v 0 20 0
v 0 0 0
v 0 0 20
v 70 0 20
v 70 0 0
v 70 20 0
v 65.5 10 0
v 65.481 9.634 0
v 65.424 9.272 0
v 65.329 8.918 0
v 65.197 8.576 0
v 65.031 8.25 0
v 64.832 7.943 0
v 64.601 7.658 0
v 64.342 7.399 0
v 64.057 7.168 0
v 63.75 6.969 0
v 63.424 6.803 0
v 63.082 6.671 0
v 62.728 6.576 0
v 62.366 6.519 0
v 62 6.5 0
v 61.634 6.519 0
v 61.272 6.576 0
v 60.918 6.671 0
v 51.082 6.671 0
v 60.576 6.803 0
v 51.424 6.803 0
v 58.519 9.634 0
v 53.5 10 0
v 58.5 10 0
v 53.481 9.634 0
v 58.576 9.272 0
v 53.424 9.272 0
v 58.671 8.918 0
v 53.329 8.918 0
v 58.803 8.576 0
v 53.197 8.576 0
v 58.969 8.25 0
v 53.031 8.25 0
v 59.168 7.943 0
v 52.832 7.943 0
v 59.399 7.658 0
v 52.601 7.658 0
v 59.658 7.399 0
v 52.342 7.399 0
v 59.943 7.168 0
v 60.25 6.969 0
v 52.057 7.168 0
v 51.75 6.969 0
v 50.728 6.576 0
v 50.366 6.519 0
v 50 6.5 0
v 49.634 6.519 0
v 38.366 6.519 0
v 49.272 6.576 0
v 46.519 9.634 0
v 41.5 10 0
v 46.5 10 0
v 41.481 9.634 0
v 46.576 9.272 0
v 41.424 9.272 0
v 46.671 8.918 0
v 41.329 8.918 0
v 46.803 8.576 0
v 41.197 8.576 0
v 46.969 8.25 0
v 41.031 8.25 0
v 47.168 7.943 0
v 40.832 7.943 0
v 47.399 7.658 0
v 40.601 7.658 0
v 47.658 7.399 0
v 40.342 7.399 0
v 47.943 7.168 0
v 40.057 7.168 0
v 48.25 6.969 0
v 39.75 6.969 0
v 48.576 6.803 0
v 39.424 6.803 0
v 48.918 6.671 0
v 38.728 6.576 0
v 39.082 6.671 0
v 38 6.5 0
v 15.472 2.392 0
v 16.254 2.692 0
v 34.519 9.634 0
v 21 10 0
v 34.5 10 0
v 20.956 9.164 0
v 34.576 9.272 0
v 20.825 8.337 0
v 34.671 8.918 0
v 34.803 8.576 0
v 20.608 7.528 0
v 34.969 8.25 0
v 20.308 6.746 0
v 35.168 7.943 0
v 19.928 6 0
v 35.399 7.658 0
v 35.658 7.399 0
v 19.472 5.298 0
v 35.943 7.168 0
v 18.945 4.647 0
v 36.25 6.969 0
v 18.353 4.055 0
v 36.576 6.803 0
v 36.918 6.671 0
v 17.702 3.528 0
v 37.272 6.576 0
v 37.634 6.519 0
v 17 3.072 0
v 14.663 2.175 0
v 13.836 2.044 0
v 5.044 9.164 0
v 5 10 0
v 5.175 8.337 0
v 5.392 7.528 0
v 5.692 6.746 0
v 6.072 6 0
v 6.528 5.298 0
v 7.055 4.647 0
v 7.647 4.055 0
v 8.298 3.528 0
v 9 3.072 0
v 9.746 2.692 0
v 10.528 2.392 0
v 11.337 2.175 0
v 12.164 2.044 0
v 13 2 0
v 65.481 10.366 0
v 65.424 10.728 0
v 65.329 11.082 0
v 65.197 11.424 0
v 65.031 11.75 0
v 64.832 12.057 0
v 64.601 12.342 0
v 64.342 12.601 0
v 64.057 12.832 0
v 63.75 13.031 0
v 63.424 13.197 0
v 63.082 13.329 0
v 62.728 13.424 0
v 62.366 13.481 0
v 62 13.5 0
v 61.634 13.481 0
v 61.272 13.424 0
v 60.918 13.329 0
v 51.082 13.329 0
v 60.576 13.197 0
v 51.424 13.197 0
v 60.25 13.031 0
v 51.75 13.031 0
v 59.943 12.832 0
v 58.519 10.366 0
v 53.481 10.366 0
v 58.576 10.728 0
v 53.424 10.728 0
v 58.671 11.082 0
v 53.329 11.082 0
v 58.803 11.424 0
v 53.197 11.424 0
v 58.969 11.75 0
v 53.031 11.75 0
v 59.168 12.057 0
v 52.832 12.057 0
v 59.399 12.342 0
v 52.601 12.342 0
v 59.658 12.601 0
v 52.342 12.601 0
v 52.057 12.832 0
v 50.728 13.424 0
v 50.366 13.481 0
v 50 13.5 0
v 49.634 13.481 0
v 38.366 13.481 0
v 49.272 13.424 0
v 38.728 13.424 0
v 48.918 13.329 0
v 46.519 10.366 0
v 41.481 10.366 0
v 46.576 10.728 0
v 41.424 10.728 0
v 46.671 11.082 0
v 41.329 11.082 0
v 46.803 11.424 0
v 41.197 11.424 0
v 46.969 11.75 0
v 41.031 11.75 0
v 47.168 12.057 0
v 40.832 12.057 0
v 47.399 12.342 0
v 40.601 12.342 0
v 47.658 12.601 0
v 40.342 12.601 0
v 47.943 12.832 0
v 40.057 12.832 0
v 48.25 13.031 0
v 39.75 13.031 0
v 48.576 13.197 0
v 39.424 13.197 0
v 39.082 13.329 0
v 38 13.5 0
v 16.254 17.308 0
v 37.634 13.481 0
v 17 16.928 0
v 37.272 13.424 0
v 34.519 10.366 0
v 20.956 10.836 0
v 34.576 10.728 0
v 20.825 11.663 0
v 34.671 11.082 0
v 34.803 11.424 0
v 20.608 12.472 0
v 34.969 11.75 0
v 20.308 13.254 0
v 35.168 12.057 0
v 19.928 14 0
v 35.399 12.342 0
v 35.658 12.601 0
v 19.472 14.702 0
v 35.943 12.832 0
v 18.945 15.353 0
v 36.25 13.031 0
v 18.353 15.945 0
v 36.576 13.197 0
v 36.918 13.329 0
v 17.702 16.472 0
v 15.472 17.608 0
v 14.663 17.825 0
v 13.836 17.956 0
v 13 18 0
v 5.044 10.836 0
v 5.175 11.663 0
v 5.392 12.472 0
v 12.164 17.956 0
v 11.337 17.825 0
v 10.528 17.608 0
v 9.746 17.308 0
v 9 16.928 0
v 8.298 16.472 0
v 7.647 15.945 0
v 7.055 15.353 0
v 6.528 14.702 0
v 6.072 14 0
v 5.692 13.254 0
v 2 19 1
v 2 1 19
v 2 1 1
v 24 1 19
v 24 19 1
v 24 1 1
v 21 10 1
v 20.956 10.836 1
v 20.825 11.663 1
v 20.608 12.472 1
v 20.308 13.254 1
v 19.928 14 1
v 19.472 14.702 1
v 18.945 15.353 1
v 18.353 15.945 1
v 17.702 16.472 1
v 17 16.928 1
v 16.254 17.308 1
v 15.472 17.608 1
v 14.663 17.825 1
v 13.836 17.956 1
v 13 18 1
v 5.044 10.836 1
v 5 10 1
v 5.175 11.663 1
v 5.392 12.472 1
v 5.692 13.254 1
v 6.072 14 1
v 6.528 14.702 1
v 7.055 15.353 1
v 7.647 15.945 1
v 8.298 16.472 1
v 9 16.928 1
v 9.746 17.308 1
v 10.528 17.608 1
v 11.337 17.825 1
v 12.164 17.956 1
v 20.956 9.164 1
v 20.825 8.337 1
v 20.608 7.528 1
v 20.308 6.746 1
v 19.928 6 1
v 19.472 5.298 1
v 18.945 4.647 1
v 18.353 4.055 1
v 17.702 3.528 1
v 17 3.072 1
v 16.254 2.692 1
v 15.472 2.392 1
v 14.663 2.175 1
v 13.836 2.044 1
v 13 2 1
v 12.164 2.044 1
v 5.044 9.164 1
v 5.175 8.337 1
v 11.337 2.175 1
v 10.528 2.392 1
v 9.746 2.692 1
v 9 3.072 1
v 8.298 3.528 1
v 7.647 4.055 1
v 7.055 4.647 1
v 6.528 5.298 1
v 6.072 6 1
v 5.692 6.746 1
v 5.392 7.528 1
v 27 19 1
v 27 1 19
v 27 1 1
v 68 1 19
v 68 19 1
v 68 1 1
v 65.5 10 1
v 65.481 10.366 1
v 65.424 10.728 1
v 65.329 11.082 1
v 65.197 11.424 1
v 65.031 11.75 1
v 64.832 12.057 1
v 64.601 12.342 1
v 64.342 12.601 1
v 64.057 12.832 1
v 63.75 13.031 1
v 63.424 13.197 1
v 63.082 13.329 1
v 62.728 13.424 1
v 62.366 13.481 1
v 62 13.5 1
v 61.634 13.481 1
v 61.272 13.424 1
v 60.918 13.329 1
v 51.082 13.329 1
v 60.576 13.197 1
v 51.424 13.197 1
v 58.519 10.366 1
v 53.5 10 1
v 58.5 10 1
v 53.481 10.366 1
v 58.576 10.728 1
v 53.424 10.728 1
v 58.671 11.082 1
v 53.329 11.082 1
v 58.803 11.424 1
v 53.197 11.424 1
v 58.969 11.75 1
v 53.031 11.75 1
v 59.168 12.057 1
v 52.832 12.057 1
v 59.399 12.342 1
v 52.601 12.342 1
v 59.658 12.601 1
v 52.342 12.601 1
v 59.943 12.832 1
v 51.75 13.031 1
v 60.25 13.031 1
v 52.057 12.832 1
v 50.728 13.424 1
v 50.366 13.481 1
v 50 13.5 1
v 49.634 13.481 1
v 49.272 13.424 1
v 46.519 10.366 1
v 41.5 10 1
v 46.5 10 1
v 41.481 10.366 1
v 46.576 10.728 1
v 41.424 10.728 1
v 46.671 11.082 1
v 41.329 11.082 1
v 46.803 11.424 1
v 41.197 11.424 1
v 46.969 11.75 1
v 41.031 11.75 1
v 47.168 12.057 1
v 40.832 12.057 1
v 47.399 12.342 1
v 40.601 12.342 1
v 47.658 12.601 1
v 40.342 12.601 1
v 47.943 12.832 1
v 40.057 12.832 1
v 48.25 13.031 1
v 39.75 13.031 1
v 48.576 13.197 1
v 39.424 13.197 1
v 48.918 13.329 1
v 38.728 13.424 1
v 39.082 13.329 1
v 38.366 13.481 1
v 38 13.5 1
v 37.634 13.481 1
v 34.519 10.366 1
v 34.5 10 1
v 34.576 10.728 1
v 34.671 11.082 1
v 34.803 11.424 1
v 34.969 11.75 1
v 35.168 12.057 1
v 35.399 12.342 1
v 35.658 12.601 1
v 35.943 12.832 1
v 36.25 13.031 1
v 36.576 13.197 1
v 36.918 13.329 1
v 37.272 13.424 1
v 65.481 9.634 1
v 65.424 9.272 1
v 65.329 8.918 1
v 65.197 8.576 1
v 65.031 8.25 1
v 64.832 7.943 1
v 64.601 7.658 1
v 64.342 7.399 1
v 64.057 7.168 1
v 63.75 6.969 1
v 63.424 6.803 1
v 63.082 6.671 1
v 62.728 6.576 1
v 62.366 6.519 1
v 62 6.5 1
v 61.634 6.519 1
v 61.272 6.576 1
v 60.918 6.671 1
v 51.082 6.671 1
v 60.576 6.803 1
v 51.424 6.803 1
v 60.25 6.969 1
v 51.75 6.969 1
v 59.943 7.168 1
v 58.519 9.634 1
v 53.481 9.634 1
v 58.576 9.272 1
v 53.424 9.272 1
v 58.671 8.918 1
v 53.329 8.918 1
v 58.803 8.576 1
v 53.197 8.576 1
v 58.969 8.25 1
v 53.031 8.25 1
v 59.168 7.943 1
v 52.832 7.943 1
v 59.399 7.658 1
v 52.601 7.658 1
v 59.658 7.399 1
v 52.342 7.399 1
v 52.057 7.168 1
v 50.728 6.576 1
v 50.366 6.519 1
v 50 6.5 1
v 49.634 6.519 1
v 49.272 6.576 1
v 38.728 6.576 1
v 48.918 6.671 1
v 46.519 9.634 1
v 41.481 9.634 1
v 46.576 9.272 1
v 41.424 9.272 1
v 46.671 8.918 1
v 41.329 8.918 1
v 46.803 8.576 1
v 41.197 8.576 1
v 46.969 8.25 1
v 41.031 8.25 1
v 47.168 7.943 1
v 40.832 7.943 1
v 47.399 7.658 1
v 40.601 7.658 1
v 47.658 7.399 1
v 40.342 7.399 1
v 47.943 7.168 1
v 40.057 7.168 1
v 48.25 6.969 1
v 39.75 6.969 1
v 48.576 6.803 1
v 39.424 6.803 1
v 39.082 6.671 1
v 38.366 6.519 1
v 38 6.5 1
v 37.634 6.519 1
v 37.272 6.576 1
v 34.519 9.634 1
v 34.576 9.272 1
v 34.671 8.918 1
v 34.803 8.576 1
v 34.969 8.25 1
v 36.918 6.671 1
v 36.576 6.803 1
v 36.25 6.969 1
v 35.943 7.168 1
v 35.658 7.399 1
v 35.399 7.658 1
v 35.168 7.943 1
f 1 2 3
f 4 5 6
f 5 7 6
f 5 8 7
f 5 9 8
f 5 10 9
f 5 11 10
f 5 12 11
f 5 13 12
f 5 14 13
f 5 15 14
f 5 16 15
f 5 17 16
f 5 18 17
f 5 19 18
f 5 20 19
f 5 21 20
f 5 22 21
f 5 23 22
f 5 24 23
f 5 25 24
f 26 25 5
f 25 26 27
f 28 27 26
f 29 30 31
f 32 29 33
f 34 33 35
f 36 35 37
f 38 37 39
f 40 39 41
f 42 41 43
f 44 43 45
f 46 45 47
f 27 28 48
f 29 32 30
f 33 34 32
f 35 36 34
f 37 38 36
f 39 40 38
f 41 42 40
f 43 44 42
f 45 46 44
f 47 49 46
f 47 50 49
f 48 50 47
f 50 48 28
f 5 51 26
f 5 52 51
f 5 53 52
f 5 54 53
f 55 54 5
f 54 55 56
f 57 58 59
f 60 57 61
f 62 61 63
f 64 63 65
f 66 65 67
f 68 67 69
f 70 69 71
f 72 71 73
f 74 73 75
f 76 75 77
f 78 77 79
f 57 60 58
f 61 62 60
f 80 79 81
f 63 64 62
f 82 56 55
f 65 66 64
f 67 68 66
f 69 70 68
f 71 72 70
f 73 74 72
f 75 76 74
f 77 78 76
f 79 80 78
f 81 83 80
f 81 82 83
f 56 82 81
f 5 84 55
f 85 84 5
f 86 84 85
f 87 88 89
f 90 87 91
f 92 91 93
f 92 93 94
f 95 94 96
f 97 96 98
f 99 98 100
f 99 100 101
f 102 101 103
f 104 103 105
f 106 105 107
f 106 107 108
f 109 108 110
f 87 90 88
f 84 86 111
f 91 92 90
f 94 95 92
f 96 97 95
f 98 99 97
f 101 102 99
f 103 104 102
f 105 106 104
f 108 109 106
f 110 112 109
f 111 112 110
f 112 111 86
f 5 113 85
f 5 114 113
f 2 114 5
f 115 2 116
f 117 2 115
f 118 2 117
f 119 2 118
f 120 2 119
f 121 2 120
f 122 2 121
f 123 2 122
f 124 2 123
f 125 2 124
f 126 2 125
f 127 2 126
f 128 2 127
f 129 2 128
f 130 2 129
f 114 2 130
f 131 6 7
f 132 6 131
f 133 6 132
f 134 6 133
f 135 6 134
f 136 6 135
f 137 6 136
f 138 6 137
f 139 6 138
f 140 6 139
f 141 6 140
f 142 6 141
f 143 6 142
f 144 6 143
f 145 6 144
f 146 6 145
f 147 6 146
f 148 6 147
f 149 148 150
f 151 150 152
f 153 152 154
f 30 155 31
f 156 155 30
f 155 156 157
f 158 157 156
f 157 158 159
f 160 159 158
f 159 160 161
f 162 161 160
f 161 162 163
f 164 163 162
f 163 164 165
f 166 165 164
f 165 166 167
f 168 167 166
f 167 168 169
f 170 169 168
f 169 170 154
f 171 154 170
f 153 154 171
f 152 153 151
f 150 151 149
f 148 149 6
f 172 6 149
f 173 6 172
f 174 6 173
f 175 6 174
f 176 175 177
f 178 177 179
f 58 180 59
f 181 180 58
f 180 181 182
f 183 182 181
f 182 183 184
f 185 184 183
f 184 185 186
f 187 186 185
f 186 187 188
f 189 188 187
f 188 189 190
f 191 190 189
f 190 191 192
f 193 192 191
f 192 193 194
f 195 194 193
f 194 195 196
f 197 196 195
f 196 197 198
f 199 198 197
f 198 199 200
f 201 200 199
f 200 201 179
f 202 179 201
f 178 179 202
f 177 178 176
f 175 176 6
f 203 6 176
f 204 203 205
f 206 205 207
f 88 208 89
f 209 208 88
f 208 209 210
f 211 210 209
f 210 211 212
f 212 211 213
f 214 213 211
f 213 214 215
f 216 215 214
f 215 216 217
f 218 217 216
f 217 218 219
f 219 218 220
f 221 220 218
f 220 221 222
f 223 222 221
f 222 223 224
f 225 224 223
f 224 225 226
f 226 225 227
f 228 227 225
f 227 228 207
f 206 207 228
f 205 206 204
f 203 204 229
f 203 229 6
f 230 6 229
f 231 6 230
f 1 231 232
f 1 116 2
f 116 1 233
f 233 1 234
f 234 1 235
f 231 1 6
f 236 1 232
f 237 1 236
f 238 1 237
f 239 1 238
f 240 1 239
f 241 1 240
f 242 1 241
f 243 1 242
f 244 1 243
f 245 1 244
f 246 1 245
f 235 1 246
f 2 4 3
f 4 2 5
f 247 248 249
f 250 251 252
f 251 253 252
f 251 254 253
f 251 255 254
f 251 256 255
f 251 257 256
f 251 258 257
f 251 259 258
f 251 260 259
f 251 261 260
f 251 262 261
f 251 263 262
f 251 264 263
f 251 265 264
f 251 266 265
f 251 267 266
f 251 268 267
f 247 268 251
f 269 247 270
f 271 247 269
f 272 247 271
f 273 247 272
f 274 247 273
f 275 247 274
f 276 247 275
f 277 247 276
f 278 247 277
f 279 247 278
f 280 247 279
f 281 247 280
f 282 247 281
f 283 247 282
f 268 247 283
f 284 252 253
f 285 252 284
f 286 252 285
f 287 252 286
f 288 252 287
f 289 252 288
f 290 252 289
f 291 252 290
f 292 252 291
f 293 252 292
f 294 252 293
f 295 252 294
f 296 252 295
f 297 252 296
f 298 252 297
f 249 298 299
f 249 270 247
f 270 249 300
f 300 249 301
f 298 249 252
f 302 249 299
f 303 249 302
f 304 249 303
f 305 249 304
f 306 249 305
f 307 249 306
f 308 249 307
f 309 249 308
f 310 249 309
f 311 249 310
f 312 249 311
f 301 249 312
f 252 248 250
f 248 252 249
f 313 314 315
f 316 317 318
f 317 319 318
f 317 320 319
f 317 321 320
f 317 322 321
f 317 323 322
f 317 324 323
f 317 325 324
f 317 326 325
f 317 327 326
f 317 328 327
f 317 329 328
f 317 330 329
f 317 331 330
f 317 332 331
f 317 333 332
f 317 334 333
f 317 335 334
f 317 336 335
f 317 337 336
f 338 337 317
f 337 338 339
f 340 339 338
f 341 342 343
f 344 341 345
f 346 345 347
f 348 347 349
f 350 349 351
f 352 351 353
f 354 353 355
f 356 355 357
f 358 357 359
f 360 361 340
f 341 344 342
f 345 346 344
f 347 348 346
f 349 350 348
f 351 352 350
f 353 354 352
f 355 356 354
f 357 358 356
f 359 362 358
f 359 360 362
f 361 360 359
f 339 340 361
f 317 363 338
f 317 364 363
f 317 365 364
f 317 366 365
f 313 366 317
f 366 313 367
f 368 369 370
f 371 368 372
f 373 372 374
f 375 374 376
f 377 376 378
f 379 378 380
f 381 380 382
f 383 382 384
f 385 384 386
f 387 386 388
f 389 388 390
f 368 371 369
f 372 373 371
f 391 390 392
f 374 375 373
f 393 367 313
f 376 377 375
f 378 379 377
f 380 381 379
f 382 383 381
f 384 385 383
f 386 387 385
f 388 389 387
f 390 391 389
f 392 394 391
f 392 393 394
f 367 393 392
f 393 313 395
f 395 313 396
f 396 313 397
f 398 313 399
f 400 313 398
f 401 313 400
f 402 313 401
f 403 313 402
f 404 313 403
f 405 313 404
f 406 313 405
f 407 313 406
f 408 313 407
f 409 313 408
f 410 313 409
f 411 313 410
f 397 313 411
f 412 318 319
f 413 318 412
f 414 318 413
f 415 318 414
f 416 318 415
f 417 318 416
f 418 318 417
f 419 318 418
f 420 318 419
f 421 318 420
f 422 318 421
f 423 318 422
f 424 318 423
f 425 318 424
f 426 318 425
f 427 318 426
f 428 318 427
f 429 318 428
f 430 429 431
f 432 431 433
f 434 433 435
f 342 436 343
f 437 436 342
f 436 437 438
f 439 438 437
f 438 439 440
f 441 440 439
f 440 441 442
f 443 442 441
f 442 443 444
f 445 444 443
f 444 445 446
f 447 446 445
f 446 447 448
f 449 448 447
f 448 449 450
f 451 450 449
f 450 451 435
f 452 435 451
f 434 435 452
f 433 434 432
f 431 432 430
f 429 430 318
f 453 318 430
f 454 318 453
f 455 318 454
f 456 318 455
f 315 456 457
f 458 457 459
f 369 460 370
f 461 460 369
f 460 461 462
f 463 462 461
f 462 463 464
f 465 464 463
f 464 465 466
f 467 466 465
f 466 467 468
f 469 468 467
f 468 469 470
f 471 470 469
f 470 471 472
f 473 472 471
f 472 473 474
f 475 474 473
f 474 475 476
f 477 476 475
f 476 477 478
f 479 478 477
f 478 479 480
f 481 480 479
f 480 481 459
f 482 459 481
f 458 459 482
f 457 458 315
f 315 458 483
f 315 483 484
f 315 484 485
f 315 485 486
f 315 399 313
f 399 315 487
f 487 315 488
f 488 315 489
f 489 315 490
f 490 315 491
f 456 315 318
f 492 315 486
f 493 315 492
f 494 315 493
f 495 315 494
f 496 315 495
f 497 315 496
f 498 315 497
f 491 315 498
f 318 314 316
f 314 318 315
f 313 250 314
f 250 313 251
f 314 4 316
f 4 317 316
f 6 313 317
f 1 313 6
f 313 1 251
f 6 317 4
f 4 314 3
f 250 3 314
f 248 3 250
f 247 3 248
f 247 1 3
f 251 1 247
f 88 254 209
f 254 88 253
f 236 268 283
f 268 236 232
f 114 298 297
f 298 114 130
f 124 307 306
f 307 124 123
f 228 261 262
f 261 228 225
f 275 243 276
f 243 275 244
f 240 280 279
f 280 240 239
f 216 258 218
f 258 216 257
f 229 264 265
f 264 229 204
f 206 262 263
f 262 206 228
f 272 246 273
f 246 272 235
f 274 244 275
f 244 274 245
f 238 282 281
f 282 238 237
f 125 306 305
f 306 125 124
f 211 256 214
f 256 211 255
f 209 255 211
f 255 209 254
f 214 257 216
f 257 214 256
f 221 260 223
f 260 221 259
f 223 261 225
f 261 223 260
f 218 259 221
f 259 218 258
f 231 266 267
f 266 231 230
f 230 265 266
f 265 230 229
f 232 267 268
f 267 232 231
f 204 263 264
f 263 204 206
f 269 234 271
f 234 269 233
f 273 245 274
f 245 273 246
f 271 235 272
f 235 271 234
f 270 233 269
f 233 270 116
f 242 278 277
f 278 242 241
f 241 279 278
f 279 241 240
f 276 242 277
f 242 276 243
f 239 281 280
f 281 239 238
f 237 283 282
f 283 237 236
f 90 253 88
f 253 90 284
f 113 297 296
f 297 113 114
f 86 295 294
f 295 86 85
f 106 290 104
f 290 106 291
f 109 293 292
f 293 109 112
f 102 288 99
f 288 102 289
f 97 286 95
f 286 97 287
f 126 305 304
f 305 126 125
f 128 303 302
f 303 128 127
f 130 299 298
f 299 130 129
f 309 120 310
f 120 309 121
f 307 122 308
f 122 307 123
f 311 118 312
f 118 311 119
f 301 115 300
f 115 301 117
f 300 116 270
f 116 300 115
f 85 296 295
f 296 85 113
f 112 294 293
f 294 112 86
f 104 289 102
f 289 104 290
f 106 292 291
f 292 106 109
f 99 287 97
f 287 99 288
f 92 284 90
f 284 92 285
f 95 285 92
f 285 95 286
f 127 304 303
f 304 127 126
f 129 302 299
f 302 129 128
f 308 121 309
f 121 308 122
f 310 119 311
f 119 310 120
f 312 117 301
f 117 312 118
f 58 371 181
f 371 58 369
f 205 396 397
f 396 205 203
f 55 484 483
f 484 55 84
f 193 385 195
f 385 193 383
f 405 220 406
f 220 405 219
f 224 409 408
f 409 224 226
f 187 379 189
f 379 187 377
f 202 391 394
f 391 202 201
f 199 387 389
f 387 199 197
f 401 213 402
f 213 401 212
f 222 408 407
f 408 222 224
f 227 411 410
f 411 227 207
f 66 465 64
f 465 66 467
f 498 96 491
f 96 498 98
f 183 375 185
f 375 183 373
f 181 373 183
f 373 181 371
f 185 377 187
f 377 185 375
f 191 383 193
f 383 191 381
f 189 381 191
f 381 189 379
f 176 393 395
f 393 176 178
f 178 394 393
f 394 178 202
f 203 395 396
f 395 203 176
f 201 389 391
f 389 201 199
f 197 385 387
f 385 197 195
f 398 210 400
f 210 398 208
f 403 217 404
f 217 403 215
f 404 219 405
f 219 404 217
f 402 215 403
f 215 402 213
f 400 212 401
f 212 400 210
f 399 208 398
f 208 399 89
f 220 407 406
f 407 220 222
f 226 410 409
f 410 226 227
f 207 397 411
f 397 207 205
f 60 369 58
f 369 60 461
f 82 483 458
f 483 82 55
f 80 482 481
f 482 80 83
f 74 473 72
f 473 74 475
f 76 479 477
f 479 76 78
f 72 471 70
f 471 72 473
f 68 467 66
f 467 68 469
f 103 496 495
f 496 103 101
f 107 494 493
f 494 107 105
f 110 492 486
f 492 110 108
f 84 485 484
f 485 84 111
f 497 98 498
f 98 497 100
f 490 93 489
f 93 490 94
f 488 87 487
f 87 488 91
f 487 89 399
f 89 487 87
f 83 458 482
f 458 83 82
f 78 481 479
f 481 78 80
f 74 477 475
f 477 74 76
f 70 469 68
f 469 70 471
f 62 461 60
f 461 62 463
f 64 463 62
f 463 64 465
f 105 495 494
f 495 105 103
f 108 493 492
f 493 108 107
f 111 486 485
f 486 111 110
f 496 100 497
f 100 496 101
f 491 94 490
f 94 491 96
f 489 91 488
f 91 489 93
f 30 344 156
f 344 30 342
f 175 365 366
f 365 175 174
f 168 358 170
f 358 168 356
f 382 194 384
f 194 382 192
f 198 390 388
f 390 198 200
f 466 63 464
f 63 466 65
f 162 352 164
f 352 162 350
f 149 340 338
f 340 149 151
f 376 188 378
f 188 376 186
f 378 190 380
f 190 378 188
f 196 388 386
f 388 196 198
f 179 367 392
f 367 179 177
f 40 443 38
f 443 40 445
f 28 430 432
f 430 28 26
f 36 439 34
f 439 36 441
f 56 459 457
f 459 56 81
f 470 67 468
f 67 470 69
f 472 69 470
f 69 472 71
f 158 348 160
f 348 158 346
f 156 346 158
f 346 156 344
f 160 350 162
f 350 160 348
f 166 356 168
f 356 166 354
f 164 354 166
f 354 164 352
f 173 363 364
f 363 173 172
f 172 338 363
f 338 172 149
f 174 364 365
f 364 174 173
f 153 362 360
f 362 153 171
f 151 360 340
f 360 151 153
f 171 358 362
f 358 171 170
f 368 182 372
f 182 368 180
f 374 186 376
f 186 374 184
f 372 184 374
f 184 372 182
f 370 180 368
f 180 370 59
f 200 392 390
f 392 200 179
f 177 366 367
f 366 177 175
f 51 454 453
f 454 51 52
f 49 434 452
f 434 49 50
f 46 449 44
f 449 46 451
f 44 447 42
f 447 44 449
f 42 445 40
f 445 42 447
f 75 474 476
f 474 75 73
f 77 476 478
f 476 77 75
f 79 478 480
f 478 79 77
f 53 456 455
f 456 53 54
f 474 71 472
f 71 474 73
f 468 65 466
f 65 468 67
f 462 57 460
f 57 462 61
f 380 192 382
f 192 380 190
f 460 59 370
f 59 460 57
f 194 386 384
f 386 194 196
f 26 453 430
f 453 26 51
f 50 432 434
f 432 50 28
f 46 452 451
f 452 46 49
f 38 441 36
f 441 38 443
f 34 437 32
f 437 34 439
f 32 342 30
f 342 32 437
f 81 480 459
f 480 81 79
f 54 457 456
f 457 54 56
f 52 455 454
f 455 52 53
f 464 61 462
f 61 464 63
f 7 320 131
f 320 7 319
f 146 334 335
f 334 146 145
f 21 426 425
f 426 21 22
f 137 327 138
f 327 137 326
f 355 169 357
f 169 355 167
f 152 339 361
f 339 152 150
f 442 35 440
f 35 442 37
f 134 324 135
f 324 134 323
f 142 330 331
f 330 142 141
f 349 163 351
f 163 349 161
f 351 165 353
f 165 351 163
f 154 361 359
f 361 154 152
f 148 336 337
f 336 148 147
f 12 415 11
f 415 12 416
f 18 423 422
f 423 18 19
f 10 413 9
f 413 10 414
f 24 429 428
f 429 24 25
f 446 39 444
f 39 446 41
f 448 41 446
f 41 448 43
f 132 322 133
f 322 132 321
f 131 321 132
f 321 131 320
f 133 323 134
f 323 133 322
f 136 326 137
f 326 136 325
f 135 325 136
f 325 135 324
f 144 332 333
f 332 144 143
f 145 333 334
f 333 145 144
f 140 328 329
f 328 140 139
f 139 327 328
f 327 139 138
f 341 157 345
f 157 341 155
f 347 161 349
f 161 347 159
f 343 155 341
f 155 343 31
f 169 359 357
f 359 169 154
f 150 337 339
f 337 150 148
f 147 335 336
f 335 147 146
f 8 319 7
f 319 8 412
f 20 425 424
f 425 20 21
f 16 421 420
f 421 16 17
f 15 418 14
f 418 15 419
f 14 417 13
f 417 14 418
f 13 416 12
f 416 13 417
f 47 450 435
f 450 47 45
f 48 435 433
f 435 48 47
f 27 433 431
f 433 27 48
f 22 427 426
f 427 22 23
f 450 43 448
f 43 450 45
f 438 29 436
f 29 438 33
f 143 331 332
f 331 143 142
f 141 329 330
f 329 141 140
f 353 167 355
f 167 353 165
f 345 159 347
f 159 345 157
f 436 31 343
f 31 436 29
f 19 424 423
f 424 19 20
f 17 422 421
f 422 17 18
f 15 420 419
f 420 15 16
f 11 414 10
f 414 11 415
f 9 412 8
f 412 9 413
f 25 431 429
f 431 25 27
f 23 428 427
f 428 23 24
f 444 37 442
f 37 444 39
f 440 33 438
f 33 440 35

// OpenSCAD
$fn = 60;

difference()
{
    cube([70,22,22]);
    translate([2, 1, 1]) cube([22,22,22]);
    translate([27, 1, 1]) cube([41,22,22]);
    
    translate([-1,21,-1]) rotate([45,0,0]) cube([72,28,32]);
   
    //  Start/Reset button
    translate([13,10,-0.1]) cylinder(h=22, r=8);
    
    //  set
    translate([38,10,-0.1]) cylinder(h=22, r=3.5);
    //  up
    translate([50,10,-0.1]) cylinder(h=22, r=3.5);
    //  down
    translate([62,10,-0.1]) cylinder(h=22, r=3.5);
}

 
